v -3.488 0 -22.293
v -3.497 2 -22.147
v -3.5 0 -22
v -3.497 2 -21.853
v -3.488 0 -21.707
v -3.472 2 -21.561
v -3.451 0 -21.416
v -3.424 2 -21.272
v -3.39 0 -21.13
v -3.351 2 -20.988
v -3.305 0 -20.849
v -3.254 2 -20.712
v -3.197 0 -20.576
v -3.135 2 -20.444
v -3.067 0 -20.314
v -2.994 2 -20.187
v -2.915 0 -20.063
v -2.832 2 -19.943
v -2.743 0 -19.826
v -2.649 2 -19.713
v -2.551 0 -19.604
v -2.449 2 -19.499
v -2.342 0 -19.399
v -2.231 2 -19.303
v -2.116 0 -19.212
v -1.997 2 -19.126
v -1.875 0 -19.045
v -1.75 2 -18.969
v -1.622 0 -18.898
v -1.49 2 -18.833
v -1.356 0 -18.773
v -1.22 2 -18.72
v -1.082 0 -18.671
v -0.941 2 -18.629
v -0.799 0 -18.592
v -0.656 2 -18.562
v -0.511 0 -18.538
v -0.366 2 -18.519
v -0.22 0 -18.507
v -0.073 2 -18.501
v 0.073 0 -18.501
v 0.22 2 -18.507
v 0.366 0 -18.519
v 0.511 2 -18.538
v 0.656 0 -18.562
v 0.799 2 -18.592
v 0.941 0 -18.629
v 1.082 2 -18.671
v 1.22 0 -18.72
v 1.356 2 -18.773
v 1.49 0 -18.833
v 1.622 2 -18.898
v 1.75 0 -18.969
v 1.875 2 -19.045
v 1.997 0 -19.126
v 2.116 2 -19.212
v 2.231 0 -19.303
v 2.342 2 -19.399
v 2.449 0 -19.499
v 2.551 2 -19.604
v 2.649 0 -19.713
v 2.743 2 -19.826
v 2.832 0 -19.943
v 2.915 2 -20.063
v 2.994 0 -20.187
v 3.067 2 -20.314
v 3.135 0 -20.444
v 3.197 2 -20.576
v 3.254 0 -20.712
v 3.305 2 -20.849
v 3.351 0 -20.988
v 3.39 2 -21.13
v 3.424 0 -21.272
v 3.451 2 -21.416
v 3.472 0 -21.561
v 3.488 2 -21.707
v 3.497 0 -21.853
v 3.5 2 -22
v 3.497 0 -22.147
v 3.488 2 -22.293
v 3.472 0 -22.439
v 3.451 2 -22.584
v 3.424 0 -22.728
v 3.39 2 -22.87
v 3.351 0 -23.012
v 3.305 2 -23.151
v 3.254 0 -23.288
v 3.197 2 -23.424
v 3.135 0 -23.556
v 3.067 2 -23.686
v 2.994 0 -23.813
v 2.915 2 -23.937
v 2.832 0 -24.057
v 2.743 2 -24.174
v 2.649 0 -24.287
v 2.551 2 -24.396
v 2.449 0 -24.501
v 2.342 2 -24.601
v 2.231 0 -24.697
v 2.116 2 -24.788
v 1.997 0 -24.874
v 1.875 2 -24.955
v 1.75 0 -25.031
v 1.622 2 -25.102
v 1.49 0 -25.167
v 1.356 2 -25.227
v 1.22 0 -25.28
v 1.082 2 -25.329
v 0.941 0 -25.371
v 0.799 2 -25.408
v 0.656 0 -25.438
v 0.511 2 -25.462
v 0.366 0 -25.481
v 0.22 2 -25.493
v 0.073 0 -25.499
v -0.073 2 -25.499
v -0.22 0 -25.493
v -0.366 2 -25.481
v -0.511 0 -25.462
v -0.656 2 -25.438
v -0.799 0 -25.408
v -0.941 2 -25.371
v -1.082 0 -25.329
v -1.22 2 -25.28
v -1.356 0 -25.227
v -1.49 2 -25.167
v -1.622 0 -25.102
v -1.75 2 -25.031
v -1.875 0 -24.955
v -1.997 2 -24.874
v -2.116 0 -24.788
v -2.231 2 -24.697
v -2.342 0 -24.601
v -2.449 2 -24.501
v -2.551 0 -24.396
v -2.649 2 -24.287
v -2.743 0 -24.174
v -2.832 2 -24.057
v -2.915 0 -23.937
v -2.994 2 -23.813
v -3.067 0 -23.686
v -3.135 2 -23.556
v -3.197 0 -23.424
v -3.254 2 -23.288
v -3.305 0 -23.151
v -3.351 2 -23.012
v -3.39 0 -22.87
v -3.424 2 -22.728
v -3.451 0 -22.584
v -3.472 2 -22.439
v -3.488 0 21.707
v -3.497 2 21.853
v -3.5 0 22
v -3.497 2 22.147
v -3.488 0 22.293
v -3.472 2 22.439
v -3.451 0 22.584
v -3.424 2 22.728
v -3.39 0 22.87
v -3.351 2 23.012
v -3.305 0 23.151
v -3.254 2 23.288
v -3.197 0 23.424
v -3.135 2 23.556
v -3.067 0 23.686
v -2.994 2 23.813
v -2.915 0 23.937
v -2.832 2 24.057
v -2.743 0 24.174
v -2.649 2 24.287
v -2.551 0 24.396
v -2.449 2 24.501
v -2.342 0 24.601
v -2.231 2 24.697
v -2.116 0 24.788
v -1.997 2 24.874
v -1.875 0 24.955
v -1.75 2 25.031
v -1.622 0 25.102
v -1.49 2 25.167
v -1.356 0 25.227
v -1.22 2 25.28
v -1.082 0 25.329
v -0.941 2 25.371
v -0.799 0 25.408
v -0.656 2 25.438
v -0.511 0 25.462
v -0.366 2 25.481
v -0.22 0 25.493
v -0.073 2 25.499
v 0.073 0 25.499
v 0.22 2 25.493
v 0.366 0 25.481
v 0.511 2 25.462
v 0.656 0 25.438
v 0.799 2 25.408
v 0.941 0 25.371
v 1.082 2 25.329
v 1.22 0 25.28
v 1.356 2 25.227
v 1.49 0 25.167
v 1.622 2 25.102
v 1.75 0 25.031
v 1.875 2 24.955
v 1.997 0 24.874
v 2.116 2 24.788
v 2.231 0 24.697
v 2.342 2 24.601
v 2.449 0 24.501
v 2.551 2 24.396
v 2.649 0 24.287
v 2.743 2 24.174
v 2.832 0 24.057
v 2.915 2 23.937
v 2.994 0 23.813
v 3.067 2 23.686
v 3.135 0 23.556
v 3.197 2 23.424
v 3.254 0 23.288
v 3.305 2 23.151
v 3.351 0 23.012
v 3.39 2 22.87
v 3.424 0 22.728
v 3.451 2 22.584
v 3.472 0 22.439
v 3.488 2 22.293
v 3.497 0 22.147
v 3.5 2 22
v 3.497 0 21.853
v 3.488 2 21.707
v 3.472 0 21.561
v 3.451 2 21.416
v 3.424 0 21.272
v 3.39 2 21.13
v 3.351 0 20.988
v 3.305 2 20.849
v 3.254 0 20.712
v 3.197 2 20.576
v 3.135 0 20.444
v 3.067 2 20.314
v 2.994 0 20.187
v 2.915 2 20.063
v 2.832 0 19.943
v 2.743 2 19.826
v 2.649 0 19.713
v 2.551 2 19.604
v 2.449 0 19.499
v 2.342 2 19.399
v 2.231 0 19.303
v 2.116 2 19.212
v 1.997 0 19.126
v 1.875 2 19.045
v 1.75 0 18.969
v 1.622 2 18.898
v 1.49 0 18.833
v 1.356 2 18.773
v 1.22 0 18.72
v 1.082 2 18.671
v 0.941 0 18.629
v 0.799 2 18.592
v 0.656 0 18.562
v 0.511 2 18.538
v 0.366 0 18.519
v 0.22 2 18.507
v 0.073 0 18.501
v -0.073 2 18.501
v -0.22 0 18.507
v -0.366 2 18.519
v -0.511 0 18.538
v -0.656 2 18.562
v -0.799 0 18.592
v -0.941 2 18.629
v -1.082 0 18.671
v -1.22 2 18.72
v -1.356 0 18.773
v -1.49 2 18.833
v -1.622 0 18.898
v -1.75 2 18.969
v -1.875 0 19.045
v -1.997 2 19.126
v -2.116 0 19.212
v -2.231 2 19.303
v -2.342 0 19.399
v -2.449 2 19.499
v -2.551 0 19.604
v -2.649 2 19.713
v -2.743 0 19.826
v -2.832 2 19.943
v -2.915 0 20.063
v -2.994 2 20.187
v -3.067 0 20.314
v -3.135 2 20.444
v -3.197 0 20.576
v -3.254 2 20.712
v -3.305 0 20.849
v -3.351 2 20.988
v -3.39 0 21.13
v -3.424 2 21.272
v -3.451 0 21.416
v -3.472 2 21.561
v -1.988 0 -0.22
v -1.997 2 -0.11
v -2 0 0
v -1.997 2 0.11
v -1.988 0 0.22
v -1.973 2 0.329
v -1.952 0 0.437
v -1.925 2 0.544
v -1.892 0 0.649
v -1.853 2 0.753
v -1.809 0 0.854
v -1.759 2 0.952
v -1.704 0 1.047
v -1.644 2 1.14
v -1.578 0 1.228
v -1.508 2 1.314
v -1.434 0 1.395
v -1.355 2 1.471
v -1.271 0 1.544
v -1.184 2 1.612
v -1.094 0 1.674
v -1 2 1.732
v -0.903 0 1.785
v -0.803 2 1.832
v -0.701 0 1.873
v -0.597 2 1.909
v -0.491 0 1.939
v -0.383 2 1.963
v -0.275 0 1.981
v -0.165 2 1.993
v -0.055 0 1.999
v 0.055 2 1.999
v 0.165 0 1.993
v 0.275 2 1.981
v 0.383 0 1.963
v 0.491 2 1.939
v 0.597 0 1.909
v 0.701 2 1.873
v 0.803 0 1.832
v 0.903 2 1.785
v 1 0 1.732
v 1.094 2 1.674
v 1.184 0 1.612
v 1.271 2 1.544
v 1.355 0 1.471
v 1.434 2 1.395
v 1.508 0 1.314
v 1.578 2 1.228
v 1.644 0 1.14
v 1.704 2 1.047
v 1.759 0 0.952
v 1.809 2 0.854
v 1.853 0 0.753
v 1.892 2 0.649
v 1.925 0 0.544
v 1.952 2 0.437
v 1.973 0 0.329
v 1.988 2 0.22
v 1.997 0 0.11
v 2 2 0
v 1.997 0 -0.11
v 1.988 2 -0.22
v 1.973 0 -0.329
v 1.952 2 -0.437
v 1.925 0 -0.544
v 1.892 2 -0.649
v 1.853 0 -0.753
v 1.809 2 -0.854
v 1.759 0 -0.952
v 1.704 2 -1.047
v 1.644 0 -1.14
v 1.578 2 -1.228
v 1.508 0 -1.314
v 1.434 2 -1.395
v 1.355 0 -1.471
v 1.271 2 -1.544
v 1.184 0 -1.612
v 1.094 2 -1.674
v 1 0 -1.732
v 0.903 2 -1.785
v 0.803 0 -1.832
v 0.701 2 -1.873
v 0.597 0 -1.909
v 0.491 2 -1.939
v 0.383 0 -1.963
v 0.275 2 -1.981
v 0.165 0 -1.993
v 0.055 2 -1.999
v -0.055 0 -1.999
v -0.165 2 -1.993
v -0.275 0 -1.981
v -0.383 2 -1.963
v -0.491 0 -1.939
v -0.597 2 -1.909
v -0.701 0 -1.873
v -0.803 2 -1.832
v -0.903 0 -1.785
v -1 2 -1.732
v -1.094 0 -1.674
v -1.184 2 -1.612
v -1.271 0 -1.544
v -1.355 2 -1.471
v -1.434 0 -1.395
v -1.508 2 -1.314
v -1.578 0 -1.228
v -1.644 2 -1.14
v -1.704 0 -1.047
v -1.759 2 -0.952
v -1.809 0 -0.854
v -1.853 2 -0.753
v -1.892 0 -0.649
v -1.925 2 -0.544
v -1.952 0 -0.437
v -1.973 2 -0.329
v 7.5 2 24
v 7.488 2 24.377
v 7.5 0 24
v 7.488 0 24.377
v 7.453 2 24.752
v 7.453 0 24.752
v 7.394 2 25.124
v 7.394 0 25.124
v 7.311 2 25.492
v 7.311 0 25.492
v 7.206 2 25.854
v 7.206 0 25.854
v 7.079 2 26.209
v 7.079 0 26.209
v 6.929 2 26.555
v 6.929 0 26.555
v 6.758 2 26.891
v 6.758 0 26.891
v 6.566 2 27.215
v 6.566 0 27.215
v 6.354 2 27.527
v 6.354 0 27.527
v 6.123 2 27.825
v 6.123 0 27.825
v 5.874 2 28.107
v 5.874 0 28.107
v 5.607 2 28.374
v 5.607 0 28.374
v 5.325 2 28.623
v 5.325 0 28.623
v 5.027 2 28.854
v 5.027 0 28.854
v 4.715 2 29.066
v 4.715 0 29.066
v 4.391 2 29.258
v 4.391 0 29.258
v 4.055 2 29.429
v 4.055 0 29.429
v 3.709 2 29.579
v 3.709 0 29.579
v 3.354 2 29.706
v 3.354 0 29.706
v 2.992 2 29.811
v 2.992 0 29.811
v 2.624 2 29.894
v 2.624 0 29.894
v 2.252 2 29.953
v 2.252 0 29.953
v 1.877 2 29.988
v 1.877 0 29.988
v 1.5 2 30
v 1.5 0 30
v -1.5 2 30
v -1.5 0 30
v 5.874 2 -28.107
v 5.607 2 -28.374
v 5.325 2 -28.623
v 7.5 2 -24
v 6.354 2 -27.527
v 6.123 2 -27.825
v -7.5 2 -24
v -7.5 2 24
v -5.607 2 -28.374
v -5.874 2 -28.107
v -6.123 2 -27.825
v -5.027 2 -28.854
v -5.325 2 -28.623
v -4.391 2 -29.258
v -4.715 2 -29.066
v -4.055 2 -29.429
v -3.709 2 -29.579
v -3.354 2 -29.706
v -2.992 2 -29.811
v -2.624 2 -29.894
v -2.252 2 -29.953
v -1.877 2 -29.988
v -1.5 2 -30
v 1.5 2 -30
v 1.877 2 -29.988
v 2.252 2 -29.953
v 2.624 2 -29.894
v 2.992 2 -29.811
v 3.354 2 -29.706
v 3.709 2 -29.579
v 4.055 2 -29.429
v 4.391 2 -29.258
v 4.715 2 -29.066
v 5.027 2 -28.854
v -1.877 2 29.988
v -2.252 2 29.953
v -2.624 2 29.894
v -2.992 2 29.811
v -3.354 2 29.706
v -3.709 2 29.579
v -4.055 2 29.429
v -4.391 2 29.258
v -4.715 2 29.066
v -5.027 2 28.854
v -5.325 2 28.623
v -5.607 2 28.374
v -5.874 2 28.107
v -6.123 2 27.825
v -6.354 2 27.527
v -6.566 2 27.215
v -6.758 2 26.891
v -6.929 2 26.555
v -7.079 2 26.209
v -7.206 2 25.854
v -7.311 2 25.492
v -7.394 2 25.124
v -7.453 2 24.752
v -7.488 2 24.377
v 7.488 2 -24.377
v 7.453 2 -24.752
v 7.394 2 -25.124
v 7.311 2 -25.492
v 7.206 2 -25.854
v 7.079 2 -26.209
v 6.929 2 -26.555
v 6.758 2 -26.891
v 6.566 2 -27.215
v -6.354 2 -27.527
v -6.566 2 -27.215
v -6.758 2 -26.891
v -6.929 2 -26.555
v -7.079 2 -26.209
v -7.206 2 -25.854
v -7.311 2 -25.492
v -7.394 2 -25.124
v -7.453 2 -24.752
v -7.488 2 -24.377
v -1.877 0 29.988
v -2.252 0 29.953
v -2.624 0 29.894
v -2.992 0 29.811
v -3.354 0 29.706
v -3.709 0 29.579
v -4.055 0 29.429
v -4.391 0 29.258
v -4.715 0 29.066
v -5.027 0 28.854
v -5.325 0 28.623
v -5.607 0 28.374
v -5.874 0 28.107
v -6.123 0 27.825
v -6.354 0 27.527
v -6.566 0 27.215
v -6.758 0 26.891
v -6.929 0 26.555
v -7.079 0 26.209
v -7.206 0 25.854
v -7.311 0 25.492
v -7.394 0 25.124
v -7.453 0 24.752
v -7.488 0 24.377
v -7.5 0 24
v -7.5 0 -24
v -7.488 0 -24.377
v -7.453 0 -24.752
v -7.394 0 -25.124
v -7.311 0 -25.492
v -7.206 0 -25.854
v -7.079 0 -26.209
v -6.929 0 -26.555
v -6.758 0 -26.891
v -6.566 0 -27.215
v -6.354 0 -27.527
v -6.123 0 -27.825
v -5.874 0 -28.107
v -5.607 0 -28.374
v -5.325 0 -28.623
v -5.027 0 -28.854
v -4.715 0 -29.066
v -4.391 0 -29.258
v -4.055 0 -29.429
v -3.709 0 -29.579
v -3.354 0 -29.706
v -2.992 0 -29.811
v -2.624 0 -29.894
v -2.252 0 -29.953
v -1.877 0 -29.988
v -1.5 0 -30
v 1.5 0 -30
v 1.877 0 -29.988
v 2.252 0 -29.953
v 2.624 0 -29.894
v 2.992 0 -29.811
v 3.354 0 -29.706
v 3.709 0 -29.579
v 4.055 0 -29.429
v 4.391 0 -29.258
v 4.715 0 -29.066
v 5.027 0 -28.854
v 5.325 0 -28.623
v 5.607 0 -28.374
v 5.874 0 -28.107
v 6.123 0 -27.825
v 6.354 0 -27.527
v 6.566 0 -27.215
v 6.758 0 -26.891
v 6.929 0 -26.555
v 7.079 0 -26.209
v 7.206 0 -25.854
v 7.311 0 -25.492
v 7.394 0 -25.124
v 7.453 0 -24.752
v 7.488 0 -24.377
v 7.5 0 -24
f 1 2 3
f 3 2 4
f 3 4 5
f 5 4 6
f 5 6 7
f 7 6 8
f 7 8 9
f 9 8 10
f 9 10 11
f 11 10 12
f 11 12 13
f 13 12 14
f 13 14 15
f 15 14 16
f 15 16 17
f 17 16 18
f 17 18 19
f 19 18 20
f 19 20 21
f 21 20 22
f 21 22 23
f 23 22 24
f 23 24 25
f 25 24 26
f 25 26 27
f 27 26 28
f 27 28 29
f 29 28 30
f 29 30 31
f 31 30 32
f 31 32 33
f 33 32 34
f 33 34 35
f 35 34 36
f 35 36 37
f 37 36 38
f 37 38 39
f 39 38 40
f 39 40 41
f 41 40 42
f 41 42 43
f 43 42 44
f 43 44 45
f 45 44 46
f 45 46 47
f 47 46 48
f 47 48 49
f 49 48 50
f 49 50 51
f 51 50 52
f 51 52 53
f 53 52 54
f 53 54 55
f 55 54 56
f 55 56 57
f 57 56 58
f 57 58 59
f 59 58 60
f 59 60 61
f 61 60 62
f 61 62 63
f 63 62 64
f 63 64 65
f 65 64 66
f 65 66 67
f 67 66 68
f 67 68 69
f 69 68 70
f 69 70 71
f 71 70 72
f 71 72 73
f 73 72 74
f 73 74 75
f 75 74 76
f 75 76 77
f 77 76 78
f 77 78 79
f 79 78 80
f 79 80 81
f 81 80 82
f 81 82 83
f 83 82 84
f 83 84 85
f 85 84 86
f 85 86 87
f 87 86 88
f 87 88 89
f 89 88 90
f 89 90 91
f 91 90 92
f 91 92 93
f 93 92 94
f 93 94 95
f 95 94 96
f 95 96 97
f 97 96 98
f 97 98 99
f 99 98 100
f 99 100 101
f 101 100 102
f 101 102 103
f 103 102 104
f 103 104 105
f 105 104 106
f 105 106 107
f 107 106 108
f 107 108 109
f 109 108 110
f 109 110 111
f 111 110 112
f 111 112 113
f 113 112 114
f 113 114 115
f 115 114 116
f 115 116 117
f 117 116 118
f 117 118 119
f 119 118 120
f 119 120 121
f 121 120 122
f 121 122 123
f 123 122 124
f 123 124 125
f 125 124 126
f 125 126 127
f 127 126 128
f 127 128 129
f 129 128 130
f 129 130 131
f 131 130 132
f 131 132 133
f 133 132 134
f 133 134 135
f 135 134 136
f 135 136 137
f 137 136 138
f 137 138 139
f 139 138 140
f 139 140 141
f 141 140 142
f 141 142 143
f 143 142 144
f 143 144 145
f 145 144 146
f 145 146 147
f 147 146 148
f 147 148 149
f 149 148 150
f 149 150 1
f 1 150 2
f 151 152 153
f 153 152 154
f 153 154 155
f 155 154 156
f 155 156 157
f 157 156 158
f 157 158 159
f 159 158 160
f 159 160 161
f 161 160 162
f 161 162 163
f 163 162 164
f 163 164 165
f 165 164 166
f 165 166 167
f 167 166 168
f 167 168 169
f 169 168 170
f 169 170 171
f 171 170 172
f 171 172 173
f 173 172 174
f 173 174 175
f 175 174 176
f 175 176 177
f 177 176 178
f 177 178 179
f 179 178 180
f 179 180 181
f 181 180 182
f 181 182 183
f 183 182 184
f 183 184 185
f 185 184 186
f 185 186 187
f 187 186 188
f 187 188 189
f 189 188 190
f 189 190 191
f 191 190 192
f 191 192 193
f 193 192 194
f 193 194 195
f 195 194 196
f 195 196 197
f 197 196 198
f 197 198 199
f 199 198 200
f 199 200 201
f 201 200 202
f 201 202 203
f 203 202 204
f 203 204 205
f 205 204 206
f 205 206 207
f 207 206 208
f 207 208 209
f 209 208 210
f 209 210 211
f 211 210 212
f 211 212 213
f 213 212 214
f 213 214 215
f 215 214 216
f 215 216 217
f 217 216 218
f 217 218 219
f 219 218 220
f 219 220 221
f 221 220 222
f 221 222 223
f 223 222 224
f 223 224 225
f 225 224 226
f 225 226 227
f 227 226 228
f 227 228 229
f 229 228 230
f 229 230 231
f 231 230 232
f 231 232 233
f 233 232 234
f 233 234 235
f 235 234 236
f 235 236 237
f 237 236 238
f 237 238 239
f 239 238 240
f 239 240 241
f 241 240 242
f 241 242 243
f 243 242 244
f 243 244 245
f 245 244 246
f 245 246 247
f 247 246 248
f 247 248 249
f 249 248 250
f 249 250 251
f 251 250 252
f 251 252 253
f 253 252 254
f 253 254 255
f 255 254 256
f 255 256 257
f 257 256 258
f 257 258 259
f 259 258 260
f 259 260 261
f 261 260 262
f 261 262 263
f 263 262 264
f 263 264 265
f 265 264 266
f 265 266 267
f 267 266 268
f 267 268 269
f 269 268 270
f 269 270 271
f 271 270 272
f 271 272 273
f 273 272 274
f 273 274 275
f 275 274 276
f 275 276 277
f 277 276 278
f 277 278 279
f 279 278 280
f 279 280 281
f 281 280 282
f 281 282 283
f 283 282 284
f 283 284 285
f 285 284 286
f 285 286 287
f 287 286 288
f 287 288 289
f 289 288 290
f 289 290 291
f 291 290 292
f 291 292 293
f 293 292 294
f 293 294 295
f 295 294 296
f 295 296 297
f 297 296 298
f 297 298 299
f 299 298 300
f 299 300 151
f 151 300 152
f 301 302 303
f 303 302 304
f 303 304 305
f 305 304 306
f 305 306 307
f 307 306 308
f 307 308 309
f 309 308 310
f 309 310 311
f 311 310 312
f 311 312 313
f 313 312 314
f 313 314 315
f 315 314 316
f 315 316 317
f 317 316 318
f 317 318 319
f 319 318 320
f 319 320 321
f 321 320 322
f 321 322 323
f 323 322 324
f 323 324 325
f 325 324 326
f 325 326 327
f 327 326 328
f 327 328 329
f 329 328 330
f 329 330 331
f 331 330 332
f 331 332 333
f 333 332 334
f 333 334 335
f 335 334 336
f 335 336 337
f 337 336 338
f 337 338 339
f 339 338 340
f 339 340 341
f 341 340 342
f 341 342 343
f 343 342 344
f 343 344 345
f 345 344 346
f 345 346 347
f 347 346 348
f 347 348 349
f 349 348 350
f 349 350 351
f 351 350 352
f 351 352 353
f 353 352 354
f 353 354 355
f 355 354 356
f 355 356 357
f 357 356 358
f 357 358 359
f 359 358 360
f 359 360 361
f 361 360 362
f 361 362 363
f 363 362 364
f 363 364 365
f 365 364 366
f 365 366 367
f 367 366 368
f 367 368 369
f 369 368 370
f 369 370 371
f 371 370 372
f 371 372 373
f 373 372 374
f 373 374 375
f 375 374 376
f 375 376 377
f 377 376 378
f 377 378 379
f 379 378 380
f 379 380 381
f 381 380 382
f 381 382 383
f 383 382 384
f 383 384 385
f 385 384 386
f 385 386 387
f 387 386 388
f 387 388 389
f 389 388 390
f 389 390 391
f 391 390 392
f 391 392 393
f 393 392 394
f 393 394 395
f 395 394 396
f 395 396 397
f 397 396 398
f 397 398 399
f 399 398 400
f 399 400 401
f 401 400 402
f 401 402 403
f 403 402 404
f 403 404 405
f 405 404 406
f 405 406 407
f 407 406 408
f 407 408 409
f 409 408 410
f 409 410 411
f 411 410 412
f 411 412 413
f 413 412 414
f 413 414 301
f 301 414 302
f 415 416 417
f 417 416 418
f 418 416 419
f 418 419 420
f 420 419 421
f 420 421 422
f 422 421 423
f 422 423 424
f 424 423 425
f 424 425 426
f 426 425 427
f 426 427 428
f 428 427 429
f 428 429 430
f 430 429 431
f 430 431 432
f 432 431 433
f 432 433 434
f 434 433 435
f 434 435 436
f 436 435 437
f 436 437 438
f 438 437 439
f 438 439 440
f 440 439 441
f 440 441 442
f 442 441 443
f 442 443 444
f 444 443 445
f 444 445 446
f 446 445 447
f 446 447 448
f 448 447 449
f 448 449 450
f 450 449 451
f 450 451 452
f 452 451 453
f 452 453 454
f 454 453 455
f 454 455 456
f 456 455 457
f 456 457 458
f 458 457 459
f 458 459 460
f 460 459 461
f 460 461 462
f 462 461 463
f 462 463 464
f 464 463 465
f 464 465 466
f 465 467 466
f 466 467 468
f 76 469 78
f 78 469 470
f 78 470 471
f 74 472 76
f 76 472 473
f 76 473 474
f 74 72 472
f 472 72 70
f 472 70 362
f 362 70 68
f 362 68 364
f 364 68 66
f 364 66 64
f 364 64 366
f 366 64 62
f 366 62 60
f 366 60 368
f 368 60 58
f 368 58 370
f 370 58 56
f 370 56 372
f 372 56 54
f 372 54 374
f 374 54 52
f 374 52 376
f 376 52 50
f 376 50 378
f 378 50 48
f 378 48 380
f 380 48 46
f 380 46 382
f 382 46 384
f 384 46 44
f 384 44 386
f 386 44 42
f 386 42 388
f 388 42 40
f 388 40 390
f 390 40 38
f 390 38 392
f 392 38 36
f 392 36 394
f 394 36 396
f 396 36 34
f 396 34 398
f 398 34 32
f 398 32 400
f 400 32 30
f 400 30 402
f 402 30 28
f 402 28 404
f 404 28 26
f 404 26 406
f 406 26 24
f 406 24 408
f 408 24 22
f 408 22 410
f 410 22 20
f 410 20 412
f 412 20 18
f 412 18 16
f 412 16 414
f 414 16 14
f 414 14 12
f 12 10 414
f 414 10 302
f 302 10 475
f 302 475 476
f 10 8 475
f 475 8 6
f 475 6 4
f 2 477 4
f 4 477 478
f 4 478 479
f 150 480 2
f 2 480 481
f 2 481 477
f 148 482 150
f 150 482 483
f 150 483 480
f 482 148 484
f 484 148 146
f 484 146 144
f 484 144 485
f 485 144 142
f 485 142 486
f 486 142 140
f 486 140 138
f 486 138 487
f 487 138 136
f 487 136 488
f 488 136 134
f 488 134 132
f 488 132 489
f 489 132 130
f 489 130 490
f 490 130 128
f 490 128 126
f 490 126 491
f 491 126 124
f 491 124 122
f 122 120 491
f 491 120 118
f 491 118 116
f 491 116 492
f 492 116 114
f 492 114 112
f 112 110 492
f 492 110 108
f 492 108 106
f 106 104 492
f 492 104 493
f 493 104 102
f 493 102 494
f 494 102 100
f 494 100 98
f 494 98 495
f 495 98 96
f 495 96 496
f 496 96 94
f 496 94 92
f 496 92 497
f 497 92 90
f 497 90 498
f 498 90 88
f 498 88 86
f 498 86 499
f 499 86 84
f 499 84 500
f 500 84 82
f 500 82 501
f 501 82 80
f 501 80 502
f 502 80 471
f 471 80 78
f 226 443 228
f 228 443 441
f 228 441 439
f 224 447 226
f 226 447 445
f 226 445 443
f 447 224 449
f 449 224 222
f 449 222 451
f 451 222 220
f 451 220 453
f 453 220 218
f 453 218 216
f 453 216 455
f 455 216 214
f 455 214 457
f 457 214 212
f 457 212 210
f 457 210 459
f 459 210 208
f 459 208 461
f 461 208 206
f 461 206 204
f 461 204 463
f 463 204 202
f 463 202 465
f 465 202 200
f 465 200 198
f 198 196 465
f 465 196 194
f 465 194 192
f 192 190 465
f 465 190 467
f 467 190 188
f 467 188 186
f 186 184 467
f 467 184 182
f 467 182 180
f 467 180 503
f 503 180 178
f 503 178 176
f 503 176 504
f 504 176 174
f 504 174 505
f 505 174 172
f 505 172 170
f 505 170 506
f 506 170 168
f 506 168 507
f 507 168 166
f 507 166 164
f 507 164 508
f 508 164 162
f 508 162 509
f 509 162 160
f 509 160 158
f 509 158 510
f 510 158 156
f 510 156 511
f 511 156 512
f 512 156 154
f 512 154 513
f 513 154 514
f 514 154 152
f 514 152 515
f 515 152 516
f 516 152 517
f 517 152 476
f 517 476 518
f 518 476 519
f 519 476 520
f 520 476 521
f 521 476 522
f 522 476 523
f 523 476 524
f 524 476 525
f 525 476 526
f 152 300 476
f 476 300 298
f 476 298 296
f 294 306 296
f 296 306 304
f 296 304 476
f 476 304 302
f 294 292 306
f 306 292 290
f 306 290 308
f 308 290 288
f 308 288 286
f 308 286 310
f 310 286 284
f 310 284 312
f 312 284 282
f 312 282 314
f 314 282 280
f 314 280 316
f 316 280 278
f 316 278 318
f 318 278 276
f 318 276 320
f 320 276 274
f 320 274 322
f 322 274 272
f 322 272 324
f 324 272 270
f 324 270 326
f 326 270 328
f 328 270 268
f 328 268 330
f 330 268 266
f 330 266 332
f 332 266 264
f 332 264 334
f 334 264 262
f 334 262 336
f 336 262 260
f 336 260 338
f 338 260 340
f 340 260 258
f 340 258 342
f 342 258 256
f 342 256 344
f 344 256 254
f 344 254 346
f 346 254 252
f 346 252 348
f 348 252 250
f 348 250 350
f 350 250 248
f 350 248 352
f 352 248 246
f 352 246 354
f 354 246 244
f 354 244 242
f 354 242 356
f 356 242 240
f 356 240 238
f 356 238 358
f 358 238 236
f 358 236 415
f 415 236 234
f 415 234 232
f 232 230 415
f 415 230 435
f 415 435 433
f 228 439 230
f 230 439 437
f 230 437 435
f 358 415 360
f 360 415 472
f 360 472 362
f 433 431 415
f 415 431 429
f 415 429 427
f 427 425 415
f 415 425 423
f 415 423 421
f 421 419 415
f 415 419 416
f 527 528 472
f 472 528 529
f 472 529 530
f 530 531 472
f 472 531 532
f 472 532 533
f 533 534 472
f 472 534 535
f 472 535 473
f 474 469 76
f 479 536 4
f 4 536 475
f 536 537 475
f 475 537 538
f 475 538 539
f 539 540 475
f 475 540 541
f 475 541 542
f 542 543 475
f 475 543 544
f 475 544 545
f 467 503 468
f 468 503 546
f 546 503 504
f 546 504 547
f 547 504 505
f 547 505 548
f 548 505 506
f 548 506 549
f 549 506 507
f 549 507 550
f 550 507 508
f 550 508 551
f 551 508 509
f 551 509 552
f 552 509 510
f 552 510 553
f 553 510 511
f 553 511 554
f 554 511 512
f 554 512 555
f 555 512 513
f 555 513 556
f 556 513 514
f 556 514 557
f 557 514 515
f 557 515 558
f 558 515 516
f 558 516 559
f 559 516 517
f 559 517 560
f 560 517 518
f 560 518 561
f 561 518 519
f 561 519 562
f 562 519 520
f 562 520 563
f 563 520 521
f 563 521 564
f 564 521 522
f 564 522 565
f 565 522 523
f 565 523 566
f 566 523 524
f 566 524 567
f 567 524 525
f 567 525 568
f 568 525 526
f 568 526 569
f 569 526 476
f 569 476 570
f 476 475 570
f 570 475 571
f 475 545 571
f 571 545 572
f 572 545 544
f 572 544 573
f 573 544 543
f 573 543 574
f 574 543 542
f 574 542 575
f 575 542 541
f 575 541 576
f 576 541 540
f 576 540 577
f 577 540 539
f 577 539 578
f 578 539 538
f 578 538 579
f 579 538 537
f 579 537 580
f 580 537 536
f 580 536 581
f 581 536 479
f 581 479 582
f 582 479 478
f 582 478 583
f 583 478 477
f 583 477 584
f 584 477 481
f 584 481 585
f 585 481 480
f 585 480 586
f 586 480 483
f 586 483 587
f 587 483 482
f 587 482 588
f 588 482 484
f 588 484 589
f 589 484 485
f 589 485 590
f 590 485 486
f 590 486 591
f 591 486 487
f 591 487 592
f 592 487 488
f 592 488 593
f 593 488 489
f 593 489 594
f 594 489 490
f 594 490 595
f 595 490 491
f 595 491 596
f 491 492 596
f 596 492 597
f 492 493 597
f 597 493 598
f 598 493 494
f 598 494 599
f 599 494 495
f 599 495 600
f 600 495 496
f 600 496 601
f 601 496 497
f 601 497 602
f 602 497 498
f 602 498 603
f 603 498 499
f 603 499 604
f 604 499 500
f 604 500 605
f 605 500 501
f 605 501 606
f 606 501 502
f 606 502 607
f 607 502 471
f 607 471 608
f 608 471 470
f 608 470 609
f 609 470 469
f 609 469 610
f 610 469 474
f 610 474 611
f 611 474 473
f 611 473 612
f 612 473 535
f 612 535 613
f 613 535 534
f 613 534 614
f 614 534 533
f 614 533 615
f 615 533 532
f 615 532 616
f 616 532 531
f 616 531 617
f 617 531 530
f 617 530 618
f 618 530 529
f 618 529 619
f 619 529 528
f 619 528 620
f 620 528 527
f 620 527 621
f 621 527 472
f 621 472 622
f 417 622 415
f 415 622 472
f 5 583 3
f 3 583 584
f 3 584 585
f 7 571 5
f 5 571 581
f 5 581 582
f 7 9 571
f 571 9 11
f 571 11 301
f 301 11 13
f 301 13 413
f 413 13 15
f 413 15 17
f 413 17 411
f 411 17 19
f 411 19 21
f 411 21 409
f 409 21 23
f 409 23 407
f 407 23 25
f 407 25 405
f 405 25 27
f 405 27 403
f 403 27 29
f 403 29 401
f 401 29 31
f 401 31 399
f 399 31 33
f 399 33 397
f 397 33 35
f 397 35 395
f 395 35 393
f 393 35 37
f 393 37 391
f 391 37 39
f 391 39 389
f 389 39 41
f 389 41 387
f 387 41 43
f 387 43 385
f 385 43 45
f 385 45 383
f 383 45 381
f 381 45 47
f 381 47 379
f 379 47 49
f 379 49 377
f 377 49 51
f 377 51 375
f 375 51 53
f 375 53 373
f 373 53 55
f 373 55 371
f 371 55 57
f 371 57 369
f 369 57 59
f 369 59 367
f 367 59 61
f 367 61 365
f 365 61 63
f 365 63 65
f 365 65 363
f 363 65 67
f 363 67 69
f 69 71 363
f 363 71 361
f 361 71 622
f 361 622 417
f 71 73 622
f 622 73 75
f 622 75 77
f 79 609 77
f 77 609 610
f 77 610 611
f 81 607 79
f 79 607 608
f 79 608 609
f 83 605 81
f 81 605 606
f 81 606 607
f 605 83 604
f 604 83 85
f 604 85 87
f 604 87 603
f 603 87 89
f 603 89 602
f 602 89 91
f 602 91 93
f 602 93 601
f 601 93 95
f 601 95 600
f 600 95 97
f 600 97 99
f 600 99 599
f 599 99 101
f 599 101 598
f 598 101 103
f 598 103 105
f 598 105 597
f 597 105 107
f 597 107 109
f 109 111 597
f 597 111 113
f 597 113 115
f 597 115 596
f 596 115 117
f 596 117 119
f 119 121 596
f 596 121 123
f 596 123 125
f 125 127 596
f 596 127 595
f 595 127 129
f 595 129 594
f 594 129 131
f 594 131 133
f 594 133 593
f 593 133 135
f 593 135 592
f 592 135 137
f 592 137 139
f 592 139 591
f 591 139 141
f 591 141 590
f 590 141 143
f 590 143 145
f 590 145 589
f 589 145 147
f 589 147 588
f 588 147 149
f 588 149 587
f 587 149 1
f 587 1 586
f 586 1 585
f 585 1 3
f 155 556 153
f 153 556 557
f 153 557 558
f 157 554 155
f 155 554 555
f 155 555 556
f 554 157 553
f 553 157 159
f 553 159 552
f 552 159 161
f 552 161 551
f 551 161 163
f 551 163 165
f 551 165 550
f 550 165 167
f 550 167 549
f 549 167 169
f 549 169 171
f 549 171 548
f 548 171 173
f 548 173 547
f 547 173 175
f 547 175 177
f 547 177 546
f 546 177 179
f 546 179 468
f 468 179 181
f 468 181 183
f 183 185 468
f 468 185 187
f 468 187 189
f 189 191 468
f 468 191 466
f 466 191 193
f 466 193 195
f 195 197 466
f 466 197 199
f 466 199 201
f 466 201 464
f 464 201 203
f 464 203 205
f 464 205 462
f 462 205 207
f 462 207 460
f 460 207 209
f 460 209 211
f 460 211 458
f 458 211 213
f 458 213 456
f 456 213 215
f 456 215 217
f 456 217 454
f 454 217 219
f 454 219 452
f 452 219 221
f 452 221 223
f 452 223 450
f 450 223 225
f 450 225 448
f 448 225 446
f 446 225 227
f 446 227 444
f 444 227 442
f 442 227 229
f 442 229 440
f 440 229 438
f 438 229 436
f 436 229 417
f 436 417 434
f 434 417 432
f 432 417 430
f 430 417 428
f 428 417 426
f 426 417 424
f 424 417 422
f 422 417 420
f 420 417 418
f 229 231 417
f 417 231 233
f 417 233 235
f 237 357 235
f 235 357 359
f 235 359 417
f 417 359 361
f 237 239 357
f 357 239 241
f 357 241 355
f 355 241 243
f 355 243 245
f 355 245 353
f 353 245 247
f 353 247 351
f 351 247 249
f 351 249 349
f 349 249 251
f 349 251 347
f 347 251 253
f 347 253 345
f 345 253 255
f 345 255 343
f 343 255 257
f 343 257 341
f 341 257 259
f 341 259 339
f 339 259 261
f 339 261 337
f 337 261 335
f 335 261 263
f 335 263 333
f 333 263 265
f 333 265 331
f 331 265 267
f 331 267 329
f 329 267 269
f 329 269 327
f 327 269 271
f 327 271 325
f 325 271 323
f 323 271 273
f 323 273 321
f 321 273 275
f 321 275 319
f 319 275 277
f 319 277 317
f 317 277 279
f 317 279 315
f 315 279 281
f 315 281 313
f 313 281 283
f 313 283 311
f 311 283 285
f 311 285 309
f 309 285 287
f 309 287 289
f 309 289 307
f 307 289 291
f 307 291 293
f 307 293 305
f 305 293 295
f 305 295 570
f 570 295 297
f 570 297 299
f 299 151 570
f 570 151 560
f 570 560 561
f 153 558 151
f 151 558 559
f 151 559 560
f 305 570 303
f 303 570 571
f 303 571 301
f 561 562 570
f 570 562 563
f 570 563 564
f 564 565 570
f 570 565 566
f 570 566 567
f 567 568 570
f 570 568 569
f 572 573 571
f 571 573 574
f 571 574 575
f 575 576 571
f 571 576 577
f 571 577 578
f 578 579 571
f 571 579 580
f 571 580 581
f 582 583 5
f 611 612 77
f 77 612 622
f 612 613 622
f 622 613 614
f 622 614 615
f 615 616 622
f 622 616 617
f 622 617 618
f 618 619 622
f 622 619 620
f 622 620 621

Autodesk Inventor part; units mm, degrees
ref_plane "YZ Plane" through (0, 0, 0) normal (1, 0, 0) x (0, 1, 0)
ref_plane "XZ Plane" through (0, 0, 0) normal (0, 1, 0) x (-1, 0, 0)
ref_plane "XY Plane" through (0, 0, 0) normal (0, 0, 1) x (1, 0, 0)
sketch "Sketch1" plane through (0, 0, 0) normal (0, 1, 0) x (-1, 0, 0)
  line L0 (10.5, 0) -> (-10.5, 0) projected
  line L1 (0, -42) -> (0, 42) projected
  line L2 (7.5, -30) -> (-7.5, -30)
  line L3 (-7.5, -30) -> (-7.5, 30)
  line L4 (-7.5, 30) -> (7.5, 30)
  line L5 (7.5, 30) -> (7.5, -30)
  point P0 (0, 0)
  dimension "d0" = 15
  dimension "d1" = 60
extrude "Extrusion1" add sketch "Sketch1" along normal blind 2
fillet "Fillet1" radius 6 4 edges at (7.5, 1, -30) (-7.5, 1, -30) (-7.5, 1, 30) (7.5, 1, 30)
sketch "Sketch5" plane through (0, 2, 0) normal (0, 1, 0) x (1, 0, 0)
  arc A0 (1.5, -30) -> (7.5, -24) centre (1.5, -24) ccw projected
  line L0 (7.5, -24) -> (7.5, 24) projected
  arc A1 (7.5, 24) -> (1.5, 30) centre (1.5, 24) ccw projected
  line L1 (1.5, 30) -> (-1.5, 30) projected
  arc A2 (-1.5, 30) -> (-7.5, 24) centre (-1.5, 24) ccw projected
  line L2 (-7.5, 24) -> (-7.5, -24) projected
  arc A3 (-7.5, -24) -> (-1.5, -30) centre (-1.5, -24) ccw projected
  line L3 (-1.5, -30) -> (1.5, -30) projected
  point P0 (0, 0)
  point P1 (0, 0)
hole "Hole3" at (0, 2, 0) direction (0, -1, 0) diameter 4 end through all
sketch "Sketch6" plane through (0, 2, 0) normal (0, 1, 0) x (1, 0, 0)
  circle A0 centre (0, 0) radius 2 projected
  arc A1 (1.5, -30) -> (7.5, -24) centre (1.5, -24) ccw projected
  line L0 (7.5, -24) -> (7.5, 24) projected
  arc A2 (7.5, 24) -> (1.5, 30) centre (1.5, 24) ccw projected
  line L1 (1.5, 30) -> (-1.5, 30) projected
  arc A3 (-1.5, 30) -> (-7.5, 24) centre (-1.5, 24) ccw projected
  line L2 (-7.5, 24) -> (-7.5, -24) projected
  arc A4 (-7.5, -24) -> (-1.5, -30) centre (-1.5, -24) ccw projected
  line L3 (-1.5, -30) -> (1.5, -30) projected
  line L4 (0, 43.7397) -> (0, -43.7397) projected
  line L5 (-12.2397, 0) -> (12.2397, 0) projected
  point P0 (0, 22)
  point P1 (0, -22)
  dimension "d41" = 8
  dimension "d42" = 8
hole "Hole4" at (0, 2, -22) at (0, 2, 22) direction (0, -1, 0) diameter 7 end through all
properties part number "femur_v5"
